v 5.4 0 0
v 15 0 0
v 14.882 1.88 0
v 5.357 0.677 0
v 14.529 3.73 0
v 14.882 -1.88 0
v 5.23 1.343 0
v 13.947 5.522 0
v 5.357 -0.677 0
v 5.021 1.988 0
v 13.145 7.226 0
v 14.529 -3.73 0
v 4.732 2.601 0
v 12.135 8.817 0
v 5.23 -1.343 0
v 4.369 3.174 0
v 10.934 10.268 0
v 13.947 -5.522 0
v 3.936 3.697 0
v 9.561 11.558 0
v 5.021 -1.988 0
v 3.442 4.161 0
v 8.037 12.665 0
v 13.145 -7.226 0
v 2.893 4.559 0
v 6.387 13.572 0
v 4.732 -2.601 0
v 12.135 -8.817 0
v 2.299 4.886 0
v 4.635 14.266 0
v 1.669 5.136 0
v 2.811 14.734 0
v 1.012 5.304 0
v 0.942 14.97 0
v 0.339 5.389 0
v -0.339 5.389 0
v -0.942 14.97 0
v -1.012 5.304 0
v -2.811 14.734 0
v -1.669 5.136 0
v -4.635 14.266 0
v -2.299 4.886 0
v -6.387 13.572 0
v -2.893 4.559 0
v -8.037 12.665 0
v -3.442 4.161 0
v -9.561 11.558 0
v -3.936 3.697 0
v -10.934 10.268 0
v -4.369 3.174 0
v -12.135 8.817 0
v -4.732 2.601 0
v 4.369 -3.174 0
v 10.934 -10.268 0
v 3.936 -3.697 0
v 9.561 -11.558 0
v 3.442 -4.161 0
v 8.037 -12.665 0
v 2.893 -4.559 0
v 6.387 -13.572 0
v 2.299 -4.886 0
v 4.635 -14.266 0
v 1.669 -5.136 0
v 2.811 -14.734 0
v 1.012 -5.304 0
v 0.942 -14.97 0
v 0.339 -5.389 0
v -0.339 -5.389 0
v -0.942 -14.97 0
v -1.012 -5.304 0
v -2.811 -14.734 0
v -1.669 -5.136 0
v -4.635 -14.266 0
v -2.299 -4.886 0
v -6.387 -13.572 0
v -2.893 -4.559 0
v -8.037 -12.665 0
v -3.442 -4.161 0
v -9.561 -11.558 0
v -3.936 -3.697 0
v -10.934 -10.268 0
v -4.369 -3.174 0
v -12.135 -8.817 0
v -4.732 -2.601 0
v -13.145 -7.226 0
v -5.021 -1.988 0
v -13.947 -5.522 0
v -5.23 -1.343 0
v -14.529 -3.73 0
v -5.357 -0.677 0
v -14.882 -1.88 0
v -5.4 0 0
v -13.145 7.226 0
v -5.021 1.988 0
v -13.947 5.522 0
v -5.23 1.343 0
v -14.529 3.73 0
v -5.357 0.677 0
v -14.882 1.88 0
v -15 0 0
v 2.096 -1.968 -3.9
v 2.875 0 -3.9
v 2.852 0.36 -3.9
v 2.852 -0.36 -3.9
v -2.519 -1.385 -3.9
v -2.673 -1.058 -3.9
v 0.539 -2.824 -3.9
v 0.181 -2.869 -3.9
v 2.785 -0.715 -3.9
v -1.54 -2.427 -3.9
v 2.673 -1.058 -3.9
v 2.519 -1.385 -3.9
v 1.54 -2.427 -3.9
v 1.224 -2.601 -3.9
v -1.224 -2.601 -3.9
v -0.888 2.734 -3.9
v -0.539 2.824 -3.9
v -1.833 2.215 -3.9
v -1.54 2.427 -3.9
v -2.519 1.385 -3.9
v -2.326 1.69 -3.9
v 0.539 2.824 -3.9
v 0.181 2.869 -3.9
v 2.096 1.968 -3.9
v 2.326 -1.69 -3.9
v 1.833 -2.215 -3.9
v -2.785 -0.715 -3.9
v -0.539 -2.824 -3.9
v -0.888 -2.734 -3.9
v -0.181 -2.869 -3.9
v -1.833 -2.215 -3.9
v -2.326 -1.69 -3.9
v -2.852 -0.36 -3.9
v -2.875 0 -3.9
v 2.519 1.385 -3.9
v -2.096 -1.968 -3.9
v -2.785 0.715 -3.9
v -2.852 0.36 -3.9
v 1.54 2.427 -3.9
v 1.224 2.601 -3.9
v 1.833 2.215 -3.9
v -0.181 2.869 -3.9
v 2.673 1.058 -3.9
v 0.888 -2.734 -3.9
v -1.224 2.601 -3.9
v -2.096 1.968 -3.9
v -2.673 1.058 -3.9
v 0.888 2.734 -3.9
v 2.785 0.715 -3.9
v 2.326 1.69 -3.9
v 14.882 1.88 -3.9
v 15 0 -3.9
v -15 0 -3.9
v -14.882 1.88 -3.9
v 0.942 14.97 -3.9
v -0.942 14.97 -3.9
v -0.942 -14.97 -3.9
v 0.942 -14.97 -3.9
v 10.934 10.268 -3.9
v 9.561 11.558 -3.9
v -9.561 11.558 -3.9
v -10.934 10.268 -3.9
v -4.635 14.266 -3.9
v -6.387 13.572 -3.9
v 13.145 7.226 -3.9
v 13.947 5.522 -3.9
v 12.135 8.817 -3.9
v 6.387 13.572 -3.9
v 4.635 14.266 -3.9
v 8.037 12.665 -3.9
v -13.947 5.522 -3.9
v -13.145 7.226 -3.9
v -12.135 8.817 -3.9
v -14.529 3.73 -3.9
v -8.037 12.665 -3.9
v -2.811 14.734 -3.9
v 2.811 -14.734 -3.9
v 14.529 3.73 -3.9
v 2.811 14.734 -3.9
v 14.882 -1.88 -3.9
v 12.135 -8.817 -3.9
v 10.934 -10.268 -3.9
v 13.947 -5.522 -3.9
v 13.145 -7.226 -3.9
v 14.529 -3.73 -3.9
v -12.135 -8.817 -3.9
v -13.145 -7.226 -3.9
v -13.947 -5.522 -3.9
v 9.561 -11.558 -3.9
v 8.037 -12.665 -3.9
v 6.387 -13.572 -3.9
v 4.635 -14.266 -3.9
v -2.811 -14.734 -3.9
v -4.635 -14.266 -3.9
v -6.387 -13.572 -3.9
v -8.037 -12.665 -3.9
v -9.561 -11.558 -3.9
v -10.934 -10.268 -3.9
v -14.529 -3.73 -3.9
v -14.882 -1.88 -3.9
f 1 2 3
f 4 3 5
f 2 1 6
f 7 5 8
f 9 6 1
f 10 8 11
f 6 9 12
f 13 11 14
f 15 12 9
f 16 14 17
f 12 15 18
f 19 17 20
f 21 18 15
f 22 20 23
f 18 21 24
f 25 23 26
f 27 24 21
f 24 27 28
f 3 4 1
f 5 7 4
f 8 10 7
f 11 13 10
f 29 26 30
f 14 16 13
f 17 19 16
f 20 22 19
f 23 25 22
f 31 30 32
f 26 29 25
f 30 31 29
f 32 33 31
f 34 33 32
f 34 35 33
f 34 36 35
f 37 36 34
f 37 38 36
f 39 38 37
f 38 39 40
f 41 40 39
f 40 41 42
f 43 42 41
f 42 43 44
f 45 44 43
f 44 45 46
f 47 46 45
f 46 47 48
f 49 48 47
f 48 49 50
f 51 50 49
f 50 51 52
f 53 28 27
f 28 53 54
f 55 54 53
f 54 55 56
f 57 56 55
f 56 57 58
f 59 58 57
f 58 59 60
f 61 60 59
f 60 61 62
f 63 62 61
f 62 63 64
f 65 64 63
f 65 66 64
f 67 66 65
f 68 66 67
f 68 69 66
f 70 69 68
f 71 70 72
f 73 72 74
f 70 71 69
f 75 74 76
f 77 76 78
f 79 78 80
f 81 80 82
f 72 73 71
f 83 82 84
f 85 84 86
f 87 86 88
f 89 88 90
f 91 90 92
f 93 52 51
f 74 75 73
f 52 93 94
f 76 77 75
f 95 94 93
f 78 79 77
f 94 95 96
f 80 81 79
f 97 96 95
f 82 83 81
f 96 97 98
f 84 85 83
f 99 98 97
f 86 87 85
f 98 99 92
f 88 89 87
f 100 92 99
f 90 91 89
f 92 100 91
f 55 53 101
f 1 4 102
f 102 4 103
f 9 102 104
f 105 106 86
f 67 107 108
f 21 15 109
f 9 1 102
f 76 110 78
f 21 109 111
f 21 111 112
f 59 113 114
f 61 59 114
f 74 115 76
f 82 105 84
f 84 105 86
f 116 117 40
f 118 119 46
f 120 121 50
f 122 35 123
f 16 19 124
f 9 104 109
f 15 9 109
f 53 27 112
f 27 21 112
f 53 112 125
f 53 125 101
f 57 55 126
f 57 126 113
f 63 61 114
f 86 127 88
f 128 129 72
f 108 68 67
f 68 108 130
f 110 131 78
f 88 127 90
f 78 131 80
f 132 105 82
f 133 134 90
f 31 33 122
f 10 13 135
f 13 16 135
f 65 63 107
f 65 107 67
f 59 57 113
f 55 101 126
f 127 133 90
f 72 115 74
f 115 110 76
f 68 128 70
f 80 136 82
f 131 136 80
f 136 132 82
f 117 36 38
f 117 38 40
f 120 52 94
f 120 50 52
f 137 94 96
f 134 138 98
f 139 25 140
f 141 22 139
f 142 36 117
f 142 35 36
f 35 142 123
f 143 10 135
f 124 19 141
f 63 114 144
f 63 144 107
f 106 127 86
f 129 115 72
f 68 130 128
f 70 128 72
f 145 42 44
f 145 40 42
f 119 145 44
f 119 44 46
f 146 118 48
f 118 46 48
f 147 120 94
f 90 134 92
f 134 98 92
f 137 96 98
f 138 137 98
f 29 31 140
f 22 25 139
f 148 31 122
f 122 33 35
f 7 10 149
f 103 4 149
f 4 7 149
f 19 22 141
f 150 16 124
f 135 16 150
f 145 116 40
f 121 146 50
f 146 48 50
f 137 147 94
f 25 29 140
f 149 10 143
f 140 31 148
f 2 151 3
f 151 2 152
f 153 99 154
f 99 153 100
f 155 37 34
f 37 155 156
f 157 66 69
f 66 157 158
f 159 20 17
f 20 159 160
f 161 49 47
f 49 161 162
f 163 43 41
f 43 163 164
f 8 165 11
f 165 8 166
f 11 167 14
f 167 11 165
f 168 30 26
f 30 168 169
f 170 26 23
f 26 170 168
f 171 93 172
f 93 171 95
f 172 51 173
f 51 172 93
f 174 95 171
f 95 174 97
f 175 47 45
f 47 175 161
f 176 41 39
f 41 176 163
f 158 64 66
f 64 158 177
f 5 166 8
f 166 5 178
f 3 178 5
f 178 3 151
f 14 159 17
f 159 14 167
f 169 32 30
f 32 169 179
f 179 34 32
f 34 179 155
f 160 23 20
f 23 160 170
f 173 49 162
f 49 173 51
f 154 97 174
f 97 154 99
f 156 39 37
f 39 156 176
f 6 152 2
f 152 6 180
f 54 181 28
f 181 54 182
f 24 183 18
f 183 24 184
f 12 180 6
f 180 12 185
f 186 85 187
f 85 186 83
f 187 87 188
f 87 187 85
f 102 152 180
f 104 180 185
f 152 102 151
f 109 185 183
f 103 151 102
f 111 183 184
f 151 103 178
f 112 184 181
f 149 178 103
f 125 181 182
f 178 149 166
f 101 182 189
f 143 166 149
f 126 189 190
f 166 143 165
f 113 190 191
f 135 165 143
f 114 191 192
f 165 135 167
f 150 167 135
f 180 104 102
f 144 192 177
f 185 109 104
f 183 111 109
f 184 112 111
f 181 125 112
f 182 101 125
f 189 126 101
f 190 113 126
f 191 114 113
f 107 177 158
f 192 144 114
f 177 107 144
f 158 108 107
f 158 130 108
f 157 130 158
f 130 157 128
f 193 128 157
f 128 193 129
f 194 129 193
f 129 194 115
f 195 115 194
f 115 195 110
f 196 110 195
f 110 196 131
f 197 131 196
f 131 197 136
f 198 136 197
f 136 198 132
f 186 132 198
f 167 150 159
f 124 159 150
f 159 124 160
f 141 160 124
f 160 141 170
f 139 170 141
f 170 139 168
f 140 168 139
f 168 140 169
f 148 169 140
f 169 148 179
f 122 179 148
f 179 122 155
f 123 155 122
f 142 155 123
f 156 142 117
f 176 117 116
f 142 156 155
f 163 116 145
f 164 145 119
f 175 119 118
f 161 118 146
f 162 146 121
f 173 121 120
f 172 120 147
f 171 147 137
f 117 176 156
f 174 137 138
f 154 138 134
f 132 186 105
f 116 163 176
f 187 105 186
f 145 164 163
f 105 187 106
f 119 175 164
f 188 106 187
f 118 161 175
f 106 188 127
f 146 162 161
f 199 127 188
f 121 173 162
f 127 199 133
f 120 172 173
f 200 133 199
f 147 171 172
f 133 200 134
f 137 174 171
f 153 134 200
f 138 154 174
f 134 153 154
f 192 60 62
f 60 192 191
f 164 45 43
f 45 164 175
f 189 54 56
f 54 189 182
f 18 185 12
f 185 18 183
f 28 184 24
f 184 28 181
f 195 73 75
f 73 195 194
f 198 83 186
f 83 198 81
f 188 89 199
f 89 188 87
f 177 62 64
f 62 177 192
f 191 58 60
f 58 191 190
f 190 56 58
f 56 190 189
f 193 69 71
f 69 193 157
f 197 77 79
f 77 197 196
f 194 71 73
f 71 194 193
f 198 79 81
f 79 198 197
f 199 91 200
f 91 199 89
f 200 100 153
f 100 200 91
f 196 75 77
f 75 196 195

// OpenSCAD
$fn = 50;

difference() {
	union() {
		translate(v = [0, 0, -3.9]) {
			cylinder(h = 3.9, r = 15.0);
		}
	}
	union() {
		translate(v = [0, 0, 0]) {
			rotate(a = [0, 0, 0]) {
				difference() {
					union() {
						translate(v = [0, 0, -6.9]) {
							cylinder(h = 6.9, r = 2.6);
						}
						translate(v = [0, 0, -3.9]) {
							cylinder(h = 3.9, r1 = 2.875, r2 = 5.4);
						}
						translate(v = [0, 0, -6.9]) {
							cylinder(h = 6.9, r = 2.875);
						}
						translate(v = [0, 0, -6.9]) {
							cylinder(h = 6.9, r = 2.6);
						}
					}
					union();
				}
			}
		}
	}
}
